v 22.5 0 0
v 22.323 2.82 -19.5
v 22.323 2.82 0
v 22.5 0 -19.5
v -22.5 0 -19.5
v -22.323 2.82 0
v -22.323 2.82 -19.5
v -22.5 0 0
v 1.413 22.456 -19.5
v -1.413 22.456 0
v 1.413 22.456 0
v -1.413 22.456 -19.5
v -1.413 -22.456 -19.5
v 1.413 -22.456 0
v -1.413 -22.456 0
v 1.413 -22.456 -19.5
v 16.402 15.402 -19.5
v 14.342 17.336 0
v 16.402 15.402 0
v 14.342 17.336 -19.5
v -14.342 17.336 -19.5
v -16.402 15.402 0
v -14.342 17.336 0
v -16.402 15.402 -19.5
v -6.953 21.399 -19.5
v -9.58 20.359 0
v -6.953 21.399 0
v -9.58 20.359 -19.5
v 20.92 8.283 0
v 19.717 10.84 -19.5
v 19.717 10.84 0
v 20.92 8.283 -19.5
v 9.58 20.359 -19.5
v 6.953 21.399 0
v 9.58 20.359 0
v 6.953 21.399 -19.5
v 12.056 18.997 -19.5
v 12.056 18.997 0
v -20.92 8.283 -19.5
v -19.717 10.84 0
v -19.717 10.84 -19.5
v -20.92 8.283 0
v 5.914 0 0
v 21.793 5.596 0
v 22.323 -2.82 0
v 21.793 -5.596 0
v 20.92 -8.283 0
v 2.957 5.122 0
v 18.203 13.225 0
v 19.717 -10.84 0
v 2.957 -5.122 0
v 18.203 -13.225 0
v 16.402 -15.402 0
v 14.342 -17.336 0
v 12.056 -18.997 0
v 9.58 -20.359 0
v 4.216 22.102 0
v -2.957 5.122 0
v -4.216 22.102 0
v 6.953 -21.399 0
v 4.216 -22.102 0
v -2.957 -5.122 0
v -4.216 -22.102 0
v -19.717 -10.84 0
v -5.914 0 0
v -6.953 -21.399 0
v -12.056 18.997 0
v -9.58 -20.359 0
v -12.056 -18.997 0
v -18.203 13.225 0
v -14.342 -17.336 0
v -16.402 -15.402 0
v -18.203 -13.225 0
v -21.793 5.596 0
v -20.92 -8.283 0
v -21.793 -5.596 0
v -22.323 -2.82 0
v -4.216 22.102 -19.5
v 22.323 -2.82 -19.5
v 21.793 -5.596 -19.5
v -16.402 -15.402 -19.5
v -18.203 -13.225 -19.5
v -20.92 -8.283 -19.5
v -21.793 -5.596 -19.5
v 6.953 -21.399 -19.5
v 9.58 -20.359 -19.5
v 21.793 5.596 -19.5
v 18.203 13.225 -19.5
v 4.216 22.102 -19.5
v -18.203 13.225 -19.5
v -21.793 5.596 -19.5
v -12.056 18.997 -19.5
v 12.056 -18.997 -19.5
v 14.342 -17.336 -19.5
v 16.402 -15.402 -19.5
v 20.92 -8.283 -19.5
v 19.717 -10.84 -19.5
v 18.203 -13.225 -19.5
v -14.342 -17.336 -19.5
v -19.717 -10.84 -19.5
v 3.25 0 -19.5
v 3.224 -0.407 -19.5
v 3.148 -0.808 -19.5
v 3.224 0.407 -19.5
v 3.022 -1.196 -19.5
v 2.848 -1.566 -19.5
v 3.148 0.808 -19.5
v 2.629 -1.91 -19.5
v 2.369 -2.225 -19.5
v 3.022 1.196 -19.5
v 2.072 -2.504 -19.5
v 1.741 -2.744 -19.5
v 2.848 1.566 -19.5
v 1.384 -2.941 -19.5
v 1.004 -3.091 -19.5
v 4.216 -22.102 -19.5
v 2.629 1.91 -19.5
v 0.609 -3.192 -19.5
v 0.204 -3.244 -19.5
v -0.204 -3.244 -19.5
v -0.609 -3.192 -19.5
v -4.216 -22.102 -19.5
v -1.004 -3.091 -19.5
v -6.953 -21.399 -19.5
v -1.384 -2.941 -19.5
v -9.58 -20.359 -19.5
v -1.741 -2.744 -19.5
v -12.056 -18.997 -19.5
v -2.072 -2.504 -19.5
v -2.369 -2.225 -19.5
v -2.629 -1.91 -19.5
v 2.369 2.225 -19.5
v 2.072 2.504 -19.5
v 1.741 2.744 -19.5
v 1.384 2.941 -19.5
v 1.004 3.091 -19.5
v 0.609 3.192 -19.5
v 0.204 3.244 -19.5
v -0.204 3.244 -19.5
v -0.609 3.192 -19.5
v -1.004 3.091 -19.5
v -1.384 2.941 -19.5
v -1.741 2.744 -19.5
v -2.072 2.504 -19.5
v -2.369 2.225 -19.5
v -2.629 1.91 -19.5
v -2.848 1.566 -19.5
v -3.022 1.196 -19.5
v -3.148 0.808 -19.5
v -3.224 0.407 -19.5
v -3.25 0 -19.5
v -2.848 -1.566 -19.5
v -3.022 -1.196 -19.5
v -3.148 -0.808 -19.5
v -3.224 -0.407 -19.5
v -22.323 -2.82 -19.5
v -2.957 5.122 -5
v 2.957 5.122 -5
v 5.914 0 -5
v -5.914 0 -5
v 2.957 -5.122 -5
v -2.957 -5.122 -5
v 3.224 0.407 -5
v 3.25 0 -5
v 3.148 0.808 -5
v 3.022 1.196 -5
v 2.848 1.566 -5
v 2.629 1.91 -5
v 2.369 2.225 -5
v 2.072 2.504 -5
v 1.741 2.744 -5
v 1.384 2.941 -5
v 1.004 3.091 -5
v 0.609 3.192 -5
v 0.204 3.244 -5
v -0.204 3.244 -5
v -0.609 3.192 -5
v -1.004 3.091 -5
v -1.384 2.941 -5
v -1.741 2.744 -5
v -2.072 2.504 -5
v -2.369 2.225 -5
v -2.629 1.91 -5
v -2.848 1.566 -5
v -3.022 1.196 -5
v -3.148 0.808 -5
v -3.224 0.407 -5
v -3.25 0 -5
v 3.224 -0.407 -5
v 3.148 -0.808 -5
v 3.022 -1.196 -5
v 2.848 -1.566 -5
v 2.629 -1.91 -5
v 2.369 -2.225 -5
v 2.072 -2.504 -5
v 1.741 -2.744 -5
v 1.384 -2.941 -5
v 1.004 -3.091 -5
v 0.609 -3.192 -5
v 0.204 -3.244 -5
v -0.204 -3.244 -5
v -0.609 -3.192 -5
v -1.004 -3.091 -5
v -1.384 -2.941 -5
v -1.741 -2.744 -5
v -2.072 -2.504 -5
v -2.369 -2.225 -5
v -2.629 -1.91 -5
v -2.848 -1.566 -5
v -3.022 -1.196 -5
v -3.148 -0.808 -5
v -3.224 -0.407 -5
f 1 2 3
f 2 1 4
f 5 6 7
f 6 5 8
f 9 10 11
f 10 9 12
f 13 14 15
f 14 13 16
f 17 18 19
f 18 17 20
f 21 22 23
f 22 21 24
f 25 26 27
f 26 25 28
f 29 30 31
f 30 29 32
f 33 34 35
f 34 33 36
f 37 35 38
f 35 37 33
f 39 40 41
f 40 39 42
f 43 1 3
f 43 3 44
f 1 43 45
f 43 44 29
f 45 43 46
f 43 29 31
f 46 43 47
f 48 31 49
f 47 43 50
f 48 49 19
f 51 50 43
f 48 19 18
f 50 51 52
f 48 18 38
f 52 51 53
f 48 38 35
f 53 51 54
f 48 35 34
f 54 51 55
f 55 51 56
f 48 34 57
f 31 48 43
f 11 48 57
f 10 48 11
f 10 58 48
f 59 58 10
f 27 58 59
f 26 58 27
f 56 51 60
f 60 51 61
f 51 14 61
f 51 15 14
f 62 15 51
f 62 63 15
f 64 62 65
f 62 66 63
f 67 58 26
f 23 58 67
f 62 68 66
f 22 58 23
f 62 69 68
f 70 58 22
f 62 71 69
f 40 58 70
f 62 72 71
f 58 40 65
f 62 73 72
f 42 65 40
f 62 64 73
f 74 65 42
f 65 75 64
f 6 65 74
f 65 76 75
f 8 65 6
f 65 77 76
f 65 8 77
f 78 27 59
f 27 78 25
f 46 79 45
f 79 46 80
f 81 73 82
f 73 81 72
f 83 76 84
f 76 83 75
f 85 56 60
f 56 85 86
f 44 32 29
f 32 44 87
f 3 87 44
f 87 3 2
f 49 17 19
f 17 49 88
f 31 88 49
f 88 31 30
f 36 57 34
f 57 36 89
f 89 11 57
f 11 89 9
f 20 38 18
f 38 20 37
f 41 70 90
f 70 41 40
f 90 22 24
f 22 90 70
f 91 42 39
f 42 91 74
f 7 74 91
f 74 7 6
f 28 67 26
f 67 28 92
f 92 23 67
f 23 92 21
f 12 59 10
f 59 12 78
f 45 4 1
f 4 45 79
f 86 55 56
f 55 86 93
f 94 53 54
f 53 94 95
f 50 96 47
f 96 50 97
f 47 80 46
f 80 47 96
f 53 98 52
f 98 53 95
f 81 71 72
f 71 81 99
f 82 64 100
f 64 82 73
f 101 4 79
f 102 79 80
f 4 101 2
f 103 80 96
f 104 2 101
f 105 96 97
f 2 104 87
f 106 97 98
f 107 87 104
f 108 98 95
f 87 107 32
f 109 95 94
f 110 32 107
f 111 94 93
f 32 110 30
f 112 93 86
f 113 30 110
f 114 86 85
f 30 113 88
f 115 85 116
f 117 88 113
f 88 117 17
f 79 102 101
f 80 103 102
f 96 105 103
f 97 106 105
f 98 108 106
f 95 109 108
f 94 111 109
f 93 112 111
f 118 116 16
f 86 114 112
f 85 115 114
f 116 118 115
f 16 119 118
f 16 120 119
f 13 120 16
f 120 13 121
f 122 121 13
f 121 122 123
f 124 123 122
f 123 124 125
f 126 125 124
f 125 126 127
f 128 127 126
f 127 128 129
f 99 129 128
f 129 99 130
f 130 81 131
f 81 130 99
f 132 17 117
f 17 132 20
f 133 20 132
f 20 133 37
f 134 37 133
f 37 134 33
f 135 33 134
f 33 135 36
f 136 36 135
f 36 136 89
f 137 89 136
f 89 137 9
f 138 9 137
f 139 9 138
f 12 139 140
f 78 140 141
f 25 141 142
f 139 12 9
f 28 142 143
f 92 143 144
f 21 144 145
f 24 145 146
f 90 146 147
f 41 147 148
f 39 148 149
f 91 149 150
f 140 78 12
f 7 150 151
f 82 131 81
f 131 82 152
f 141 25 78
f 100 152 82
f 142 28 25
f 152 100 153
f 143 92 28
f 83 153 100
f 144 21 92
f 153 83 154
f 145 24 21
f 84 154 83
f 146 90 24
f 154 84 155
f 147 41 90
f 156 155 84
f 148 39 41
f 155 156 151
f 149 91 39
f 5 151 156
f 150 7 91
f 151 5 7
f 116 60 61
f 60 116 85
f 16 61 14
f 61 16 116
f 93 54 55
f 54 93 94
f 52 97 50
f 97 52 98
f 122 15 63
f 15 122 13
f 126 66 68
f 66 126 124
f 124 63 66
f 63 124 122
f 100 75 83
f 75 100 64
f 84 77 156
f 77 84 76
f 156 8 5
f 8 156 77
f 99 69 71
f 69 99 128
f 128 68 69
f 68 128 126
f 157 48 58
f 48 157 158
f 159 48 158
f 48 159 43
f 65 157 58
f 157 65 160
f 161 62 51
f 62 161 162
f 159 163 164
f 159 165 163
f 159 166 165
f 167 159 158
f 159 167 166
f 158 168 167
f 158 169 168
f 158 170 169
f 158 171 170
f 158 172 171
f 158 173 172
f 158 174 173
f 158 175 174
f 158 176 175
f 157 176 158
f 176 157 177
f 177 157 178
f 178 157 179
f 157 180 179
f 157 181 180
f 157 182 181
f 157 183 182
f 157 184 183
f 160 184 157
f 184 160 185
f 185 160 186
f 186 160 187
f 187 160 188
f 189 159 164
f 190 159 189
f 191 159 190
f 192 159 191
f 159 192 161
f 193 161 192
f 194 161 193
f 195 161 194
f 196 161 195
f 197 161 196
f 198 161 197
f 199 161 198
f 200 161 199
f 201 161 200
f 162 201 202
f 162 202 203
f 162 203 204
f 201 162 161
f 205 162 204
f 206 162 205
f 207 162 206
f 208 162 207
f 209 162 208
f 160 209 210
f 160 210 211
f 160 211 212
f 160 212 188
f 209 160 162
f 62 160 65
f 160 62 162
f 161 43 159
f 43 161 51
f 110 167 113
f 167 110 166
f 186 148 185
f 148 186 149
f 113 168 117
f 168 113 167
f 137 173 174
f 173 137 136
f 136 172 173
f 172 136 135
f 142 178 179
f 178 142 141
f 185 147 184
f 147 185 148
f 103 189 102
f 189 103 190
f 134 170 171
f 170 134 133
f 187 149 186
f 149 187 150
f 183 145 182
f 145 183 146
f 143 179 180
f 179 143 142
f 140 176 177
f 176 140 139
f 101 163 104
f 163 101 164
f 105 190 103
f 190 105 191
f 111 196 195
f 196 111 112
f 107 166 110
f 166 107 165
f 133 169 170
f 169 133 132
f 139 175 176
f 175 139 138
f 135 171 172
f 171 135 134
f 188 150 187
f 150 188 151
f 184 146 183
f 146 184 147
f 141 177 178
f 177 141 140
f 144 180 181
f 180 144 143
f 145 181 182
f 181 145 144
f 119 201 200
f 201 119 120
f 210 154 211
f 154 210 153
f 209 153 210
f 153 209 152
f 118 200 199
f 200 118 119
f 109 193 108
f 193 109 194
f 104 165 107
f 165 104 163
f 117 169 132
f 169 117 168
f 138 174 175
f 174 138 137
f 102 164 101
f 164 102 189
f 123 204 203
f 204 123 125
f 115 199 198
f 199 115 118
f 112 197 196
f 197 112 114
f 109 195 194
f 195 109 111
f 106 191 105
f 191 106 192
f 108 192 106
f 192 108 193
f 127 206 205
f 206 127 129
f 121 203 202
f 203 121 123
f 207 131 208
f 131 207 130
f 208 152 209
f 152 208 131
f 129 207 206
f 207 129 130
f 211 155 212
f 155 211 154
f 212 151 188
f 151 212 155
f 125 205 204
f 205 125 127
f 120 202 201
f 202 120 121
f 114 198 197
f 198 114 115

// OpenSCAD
$fn = 50;


difference() {
	union() {
		translate(v = [0, 0, -19.5000000000]) {
			cylinder(h = 19.5000000000, r = 22.5000000000);
		}
		#translate(v = [0, 0, -21.0000000000]) {
			cylinder(h = 21, r = 2.8750000000);
		}
	}
	union() {
		translate(v = [0, 0, 0]) {
			rotate(a = [0, 0, 0]) {
				difference() {
					union() {
						translate(v = [0, 0, -5]) {
							linear_extrude(height = 5) {
								polygon(points = [[5.9142500000, 0.0000000000], [2.9571250000, 5.1218907443], [-2.9571250000, 5.1218907443], [-5.9142500000, 0.0000000000], [-2.9571250000, -5.1218907443], [2.9571250000, -5.1218907443]]);
							}
						}
					}
					union();
				}
			}
		}
		#translate(v = [0, 0, -100.0000000000]) {
			cylinder(h = 200, r = 3.2500000000);
		}
	}
}
